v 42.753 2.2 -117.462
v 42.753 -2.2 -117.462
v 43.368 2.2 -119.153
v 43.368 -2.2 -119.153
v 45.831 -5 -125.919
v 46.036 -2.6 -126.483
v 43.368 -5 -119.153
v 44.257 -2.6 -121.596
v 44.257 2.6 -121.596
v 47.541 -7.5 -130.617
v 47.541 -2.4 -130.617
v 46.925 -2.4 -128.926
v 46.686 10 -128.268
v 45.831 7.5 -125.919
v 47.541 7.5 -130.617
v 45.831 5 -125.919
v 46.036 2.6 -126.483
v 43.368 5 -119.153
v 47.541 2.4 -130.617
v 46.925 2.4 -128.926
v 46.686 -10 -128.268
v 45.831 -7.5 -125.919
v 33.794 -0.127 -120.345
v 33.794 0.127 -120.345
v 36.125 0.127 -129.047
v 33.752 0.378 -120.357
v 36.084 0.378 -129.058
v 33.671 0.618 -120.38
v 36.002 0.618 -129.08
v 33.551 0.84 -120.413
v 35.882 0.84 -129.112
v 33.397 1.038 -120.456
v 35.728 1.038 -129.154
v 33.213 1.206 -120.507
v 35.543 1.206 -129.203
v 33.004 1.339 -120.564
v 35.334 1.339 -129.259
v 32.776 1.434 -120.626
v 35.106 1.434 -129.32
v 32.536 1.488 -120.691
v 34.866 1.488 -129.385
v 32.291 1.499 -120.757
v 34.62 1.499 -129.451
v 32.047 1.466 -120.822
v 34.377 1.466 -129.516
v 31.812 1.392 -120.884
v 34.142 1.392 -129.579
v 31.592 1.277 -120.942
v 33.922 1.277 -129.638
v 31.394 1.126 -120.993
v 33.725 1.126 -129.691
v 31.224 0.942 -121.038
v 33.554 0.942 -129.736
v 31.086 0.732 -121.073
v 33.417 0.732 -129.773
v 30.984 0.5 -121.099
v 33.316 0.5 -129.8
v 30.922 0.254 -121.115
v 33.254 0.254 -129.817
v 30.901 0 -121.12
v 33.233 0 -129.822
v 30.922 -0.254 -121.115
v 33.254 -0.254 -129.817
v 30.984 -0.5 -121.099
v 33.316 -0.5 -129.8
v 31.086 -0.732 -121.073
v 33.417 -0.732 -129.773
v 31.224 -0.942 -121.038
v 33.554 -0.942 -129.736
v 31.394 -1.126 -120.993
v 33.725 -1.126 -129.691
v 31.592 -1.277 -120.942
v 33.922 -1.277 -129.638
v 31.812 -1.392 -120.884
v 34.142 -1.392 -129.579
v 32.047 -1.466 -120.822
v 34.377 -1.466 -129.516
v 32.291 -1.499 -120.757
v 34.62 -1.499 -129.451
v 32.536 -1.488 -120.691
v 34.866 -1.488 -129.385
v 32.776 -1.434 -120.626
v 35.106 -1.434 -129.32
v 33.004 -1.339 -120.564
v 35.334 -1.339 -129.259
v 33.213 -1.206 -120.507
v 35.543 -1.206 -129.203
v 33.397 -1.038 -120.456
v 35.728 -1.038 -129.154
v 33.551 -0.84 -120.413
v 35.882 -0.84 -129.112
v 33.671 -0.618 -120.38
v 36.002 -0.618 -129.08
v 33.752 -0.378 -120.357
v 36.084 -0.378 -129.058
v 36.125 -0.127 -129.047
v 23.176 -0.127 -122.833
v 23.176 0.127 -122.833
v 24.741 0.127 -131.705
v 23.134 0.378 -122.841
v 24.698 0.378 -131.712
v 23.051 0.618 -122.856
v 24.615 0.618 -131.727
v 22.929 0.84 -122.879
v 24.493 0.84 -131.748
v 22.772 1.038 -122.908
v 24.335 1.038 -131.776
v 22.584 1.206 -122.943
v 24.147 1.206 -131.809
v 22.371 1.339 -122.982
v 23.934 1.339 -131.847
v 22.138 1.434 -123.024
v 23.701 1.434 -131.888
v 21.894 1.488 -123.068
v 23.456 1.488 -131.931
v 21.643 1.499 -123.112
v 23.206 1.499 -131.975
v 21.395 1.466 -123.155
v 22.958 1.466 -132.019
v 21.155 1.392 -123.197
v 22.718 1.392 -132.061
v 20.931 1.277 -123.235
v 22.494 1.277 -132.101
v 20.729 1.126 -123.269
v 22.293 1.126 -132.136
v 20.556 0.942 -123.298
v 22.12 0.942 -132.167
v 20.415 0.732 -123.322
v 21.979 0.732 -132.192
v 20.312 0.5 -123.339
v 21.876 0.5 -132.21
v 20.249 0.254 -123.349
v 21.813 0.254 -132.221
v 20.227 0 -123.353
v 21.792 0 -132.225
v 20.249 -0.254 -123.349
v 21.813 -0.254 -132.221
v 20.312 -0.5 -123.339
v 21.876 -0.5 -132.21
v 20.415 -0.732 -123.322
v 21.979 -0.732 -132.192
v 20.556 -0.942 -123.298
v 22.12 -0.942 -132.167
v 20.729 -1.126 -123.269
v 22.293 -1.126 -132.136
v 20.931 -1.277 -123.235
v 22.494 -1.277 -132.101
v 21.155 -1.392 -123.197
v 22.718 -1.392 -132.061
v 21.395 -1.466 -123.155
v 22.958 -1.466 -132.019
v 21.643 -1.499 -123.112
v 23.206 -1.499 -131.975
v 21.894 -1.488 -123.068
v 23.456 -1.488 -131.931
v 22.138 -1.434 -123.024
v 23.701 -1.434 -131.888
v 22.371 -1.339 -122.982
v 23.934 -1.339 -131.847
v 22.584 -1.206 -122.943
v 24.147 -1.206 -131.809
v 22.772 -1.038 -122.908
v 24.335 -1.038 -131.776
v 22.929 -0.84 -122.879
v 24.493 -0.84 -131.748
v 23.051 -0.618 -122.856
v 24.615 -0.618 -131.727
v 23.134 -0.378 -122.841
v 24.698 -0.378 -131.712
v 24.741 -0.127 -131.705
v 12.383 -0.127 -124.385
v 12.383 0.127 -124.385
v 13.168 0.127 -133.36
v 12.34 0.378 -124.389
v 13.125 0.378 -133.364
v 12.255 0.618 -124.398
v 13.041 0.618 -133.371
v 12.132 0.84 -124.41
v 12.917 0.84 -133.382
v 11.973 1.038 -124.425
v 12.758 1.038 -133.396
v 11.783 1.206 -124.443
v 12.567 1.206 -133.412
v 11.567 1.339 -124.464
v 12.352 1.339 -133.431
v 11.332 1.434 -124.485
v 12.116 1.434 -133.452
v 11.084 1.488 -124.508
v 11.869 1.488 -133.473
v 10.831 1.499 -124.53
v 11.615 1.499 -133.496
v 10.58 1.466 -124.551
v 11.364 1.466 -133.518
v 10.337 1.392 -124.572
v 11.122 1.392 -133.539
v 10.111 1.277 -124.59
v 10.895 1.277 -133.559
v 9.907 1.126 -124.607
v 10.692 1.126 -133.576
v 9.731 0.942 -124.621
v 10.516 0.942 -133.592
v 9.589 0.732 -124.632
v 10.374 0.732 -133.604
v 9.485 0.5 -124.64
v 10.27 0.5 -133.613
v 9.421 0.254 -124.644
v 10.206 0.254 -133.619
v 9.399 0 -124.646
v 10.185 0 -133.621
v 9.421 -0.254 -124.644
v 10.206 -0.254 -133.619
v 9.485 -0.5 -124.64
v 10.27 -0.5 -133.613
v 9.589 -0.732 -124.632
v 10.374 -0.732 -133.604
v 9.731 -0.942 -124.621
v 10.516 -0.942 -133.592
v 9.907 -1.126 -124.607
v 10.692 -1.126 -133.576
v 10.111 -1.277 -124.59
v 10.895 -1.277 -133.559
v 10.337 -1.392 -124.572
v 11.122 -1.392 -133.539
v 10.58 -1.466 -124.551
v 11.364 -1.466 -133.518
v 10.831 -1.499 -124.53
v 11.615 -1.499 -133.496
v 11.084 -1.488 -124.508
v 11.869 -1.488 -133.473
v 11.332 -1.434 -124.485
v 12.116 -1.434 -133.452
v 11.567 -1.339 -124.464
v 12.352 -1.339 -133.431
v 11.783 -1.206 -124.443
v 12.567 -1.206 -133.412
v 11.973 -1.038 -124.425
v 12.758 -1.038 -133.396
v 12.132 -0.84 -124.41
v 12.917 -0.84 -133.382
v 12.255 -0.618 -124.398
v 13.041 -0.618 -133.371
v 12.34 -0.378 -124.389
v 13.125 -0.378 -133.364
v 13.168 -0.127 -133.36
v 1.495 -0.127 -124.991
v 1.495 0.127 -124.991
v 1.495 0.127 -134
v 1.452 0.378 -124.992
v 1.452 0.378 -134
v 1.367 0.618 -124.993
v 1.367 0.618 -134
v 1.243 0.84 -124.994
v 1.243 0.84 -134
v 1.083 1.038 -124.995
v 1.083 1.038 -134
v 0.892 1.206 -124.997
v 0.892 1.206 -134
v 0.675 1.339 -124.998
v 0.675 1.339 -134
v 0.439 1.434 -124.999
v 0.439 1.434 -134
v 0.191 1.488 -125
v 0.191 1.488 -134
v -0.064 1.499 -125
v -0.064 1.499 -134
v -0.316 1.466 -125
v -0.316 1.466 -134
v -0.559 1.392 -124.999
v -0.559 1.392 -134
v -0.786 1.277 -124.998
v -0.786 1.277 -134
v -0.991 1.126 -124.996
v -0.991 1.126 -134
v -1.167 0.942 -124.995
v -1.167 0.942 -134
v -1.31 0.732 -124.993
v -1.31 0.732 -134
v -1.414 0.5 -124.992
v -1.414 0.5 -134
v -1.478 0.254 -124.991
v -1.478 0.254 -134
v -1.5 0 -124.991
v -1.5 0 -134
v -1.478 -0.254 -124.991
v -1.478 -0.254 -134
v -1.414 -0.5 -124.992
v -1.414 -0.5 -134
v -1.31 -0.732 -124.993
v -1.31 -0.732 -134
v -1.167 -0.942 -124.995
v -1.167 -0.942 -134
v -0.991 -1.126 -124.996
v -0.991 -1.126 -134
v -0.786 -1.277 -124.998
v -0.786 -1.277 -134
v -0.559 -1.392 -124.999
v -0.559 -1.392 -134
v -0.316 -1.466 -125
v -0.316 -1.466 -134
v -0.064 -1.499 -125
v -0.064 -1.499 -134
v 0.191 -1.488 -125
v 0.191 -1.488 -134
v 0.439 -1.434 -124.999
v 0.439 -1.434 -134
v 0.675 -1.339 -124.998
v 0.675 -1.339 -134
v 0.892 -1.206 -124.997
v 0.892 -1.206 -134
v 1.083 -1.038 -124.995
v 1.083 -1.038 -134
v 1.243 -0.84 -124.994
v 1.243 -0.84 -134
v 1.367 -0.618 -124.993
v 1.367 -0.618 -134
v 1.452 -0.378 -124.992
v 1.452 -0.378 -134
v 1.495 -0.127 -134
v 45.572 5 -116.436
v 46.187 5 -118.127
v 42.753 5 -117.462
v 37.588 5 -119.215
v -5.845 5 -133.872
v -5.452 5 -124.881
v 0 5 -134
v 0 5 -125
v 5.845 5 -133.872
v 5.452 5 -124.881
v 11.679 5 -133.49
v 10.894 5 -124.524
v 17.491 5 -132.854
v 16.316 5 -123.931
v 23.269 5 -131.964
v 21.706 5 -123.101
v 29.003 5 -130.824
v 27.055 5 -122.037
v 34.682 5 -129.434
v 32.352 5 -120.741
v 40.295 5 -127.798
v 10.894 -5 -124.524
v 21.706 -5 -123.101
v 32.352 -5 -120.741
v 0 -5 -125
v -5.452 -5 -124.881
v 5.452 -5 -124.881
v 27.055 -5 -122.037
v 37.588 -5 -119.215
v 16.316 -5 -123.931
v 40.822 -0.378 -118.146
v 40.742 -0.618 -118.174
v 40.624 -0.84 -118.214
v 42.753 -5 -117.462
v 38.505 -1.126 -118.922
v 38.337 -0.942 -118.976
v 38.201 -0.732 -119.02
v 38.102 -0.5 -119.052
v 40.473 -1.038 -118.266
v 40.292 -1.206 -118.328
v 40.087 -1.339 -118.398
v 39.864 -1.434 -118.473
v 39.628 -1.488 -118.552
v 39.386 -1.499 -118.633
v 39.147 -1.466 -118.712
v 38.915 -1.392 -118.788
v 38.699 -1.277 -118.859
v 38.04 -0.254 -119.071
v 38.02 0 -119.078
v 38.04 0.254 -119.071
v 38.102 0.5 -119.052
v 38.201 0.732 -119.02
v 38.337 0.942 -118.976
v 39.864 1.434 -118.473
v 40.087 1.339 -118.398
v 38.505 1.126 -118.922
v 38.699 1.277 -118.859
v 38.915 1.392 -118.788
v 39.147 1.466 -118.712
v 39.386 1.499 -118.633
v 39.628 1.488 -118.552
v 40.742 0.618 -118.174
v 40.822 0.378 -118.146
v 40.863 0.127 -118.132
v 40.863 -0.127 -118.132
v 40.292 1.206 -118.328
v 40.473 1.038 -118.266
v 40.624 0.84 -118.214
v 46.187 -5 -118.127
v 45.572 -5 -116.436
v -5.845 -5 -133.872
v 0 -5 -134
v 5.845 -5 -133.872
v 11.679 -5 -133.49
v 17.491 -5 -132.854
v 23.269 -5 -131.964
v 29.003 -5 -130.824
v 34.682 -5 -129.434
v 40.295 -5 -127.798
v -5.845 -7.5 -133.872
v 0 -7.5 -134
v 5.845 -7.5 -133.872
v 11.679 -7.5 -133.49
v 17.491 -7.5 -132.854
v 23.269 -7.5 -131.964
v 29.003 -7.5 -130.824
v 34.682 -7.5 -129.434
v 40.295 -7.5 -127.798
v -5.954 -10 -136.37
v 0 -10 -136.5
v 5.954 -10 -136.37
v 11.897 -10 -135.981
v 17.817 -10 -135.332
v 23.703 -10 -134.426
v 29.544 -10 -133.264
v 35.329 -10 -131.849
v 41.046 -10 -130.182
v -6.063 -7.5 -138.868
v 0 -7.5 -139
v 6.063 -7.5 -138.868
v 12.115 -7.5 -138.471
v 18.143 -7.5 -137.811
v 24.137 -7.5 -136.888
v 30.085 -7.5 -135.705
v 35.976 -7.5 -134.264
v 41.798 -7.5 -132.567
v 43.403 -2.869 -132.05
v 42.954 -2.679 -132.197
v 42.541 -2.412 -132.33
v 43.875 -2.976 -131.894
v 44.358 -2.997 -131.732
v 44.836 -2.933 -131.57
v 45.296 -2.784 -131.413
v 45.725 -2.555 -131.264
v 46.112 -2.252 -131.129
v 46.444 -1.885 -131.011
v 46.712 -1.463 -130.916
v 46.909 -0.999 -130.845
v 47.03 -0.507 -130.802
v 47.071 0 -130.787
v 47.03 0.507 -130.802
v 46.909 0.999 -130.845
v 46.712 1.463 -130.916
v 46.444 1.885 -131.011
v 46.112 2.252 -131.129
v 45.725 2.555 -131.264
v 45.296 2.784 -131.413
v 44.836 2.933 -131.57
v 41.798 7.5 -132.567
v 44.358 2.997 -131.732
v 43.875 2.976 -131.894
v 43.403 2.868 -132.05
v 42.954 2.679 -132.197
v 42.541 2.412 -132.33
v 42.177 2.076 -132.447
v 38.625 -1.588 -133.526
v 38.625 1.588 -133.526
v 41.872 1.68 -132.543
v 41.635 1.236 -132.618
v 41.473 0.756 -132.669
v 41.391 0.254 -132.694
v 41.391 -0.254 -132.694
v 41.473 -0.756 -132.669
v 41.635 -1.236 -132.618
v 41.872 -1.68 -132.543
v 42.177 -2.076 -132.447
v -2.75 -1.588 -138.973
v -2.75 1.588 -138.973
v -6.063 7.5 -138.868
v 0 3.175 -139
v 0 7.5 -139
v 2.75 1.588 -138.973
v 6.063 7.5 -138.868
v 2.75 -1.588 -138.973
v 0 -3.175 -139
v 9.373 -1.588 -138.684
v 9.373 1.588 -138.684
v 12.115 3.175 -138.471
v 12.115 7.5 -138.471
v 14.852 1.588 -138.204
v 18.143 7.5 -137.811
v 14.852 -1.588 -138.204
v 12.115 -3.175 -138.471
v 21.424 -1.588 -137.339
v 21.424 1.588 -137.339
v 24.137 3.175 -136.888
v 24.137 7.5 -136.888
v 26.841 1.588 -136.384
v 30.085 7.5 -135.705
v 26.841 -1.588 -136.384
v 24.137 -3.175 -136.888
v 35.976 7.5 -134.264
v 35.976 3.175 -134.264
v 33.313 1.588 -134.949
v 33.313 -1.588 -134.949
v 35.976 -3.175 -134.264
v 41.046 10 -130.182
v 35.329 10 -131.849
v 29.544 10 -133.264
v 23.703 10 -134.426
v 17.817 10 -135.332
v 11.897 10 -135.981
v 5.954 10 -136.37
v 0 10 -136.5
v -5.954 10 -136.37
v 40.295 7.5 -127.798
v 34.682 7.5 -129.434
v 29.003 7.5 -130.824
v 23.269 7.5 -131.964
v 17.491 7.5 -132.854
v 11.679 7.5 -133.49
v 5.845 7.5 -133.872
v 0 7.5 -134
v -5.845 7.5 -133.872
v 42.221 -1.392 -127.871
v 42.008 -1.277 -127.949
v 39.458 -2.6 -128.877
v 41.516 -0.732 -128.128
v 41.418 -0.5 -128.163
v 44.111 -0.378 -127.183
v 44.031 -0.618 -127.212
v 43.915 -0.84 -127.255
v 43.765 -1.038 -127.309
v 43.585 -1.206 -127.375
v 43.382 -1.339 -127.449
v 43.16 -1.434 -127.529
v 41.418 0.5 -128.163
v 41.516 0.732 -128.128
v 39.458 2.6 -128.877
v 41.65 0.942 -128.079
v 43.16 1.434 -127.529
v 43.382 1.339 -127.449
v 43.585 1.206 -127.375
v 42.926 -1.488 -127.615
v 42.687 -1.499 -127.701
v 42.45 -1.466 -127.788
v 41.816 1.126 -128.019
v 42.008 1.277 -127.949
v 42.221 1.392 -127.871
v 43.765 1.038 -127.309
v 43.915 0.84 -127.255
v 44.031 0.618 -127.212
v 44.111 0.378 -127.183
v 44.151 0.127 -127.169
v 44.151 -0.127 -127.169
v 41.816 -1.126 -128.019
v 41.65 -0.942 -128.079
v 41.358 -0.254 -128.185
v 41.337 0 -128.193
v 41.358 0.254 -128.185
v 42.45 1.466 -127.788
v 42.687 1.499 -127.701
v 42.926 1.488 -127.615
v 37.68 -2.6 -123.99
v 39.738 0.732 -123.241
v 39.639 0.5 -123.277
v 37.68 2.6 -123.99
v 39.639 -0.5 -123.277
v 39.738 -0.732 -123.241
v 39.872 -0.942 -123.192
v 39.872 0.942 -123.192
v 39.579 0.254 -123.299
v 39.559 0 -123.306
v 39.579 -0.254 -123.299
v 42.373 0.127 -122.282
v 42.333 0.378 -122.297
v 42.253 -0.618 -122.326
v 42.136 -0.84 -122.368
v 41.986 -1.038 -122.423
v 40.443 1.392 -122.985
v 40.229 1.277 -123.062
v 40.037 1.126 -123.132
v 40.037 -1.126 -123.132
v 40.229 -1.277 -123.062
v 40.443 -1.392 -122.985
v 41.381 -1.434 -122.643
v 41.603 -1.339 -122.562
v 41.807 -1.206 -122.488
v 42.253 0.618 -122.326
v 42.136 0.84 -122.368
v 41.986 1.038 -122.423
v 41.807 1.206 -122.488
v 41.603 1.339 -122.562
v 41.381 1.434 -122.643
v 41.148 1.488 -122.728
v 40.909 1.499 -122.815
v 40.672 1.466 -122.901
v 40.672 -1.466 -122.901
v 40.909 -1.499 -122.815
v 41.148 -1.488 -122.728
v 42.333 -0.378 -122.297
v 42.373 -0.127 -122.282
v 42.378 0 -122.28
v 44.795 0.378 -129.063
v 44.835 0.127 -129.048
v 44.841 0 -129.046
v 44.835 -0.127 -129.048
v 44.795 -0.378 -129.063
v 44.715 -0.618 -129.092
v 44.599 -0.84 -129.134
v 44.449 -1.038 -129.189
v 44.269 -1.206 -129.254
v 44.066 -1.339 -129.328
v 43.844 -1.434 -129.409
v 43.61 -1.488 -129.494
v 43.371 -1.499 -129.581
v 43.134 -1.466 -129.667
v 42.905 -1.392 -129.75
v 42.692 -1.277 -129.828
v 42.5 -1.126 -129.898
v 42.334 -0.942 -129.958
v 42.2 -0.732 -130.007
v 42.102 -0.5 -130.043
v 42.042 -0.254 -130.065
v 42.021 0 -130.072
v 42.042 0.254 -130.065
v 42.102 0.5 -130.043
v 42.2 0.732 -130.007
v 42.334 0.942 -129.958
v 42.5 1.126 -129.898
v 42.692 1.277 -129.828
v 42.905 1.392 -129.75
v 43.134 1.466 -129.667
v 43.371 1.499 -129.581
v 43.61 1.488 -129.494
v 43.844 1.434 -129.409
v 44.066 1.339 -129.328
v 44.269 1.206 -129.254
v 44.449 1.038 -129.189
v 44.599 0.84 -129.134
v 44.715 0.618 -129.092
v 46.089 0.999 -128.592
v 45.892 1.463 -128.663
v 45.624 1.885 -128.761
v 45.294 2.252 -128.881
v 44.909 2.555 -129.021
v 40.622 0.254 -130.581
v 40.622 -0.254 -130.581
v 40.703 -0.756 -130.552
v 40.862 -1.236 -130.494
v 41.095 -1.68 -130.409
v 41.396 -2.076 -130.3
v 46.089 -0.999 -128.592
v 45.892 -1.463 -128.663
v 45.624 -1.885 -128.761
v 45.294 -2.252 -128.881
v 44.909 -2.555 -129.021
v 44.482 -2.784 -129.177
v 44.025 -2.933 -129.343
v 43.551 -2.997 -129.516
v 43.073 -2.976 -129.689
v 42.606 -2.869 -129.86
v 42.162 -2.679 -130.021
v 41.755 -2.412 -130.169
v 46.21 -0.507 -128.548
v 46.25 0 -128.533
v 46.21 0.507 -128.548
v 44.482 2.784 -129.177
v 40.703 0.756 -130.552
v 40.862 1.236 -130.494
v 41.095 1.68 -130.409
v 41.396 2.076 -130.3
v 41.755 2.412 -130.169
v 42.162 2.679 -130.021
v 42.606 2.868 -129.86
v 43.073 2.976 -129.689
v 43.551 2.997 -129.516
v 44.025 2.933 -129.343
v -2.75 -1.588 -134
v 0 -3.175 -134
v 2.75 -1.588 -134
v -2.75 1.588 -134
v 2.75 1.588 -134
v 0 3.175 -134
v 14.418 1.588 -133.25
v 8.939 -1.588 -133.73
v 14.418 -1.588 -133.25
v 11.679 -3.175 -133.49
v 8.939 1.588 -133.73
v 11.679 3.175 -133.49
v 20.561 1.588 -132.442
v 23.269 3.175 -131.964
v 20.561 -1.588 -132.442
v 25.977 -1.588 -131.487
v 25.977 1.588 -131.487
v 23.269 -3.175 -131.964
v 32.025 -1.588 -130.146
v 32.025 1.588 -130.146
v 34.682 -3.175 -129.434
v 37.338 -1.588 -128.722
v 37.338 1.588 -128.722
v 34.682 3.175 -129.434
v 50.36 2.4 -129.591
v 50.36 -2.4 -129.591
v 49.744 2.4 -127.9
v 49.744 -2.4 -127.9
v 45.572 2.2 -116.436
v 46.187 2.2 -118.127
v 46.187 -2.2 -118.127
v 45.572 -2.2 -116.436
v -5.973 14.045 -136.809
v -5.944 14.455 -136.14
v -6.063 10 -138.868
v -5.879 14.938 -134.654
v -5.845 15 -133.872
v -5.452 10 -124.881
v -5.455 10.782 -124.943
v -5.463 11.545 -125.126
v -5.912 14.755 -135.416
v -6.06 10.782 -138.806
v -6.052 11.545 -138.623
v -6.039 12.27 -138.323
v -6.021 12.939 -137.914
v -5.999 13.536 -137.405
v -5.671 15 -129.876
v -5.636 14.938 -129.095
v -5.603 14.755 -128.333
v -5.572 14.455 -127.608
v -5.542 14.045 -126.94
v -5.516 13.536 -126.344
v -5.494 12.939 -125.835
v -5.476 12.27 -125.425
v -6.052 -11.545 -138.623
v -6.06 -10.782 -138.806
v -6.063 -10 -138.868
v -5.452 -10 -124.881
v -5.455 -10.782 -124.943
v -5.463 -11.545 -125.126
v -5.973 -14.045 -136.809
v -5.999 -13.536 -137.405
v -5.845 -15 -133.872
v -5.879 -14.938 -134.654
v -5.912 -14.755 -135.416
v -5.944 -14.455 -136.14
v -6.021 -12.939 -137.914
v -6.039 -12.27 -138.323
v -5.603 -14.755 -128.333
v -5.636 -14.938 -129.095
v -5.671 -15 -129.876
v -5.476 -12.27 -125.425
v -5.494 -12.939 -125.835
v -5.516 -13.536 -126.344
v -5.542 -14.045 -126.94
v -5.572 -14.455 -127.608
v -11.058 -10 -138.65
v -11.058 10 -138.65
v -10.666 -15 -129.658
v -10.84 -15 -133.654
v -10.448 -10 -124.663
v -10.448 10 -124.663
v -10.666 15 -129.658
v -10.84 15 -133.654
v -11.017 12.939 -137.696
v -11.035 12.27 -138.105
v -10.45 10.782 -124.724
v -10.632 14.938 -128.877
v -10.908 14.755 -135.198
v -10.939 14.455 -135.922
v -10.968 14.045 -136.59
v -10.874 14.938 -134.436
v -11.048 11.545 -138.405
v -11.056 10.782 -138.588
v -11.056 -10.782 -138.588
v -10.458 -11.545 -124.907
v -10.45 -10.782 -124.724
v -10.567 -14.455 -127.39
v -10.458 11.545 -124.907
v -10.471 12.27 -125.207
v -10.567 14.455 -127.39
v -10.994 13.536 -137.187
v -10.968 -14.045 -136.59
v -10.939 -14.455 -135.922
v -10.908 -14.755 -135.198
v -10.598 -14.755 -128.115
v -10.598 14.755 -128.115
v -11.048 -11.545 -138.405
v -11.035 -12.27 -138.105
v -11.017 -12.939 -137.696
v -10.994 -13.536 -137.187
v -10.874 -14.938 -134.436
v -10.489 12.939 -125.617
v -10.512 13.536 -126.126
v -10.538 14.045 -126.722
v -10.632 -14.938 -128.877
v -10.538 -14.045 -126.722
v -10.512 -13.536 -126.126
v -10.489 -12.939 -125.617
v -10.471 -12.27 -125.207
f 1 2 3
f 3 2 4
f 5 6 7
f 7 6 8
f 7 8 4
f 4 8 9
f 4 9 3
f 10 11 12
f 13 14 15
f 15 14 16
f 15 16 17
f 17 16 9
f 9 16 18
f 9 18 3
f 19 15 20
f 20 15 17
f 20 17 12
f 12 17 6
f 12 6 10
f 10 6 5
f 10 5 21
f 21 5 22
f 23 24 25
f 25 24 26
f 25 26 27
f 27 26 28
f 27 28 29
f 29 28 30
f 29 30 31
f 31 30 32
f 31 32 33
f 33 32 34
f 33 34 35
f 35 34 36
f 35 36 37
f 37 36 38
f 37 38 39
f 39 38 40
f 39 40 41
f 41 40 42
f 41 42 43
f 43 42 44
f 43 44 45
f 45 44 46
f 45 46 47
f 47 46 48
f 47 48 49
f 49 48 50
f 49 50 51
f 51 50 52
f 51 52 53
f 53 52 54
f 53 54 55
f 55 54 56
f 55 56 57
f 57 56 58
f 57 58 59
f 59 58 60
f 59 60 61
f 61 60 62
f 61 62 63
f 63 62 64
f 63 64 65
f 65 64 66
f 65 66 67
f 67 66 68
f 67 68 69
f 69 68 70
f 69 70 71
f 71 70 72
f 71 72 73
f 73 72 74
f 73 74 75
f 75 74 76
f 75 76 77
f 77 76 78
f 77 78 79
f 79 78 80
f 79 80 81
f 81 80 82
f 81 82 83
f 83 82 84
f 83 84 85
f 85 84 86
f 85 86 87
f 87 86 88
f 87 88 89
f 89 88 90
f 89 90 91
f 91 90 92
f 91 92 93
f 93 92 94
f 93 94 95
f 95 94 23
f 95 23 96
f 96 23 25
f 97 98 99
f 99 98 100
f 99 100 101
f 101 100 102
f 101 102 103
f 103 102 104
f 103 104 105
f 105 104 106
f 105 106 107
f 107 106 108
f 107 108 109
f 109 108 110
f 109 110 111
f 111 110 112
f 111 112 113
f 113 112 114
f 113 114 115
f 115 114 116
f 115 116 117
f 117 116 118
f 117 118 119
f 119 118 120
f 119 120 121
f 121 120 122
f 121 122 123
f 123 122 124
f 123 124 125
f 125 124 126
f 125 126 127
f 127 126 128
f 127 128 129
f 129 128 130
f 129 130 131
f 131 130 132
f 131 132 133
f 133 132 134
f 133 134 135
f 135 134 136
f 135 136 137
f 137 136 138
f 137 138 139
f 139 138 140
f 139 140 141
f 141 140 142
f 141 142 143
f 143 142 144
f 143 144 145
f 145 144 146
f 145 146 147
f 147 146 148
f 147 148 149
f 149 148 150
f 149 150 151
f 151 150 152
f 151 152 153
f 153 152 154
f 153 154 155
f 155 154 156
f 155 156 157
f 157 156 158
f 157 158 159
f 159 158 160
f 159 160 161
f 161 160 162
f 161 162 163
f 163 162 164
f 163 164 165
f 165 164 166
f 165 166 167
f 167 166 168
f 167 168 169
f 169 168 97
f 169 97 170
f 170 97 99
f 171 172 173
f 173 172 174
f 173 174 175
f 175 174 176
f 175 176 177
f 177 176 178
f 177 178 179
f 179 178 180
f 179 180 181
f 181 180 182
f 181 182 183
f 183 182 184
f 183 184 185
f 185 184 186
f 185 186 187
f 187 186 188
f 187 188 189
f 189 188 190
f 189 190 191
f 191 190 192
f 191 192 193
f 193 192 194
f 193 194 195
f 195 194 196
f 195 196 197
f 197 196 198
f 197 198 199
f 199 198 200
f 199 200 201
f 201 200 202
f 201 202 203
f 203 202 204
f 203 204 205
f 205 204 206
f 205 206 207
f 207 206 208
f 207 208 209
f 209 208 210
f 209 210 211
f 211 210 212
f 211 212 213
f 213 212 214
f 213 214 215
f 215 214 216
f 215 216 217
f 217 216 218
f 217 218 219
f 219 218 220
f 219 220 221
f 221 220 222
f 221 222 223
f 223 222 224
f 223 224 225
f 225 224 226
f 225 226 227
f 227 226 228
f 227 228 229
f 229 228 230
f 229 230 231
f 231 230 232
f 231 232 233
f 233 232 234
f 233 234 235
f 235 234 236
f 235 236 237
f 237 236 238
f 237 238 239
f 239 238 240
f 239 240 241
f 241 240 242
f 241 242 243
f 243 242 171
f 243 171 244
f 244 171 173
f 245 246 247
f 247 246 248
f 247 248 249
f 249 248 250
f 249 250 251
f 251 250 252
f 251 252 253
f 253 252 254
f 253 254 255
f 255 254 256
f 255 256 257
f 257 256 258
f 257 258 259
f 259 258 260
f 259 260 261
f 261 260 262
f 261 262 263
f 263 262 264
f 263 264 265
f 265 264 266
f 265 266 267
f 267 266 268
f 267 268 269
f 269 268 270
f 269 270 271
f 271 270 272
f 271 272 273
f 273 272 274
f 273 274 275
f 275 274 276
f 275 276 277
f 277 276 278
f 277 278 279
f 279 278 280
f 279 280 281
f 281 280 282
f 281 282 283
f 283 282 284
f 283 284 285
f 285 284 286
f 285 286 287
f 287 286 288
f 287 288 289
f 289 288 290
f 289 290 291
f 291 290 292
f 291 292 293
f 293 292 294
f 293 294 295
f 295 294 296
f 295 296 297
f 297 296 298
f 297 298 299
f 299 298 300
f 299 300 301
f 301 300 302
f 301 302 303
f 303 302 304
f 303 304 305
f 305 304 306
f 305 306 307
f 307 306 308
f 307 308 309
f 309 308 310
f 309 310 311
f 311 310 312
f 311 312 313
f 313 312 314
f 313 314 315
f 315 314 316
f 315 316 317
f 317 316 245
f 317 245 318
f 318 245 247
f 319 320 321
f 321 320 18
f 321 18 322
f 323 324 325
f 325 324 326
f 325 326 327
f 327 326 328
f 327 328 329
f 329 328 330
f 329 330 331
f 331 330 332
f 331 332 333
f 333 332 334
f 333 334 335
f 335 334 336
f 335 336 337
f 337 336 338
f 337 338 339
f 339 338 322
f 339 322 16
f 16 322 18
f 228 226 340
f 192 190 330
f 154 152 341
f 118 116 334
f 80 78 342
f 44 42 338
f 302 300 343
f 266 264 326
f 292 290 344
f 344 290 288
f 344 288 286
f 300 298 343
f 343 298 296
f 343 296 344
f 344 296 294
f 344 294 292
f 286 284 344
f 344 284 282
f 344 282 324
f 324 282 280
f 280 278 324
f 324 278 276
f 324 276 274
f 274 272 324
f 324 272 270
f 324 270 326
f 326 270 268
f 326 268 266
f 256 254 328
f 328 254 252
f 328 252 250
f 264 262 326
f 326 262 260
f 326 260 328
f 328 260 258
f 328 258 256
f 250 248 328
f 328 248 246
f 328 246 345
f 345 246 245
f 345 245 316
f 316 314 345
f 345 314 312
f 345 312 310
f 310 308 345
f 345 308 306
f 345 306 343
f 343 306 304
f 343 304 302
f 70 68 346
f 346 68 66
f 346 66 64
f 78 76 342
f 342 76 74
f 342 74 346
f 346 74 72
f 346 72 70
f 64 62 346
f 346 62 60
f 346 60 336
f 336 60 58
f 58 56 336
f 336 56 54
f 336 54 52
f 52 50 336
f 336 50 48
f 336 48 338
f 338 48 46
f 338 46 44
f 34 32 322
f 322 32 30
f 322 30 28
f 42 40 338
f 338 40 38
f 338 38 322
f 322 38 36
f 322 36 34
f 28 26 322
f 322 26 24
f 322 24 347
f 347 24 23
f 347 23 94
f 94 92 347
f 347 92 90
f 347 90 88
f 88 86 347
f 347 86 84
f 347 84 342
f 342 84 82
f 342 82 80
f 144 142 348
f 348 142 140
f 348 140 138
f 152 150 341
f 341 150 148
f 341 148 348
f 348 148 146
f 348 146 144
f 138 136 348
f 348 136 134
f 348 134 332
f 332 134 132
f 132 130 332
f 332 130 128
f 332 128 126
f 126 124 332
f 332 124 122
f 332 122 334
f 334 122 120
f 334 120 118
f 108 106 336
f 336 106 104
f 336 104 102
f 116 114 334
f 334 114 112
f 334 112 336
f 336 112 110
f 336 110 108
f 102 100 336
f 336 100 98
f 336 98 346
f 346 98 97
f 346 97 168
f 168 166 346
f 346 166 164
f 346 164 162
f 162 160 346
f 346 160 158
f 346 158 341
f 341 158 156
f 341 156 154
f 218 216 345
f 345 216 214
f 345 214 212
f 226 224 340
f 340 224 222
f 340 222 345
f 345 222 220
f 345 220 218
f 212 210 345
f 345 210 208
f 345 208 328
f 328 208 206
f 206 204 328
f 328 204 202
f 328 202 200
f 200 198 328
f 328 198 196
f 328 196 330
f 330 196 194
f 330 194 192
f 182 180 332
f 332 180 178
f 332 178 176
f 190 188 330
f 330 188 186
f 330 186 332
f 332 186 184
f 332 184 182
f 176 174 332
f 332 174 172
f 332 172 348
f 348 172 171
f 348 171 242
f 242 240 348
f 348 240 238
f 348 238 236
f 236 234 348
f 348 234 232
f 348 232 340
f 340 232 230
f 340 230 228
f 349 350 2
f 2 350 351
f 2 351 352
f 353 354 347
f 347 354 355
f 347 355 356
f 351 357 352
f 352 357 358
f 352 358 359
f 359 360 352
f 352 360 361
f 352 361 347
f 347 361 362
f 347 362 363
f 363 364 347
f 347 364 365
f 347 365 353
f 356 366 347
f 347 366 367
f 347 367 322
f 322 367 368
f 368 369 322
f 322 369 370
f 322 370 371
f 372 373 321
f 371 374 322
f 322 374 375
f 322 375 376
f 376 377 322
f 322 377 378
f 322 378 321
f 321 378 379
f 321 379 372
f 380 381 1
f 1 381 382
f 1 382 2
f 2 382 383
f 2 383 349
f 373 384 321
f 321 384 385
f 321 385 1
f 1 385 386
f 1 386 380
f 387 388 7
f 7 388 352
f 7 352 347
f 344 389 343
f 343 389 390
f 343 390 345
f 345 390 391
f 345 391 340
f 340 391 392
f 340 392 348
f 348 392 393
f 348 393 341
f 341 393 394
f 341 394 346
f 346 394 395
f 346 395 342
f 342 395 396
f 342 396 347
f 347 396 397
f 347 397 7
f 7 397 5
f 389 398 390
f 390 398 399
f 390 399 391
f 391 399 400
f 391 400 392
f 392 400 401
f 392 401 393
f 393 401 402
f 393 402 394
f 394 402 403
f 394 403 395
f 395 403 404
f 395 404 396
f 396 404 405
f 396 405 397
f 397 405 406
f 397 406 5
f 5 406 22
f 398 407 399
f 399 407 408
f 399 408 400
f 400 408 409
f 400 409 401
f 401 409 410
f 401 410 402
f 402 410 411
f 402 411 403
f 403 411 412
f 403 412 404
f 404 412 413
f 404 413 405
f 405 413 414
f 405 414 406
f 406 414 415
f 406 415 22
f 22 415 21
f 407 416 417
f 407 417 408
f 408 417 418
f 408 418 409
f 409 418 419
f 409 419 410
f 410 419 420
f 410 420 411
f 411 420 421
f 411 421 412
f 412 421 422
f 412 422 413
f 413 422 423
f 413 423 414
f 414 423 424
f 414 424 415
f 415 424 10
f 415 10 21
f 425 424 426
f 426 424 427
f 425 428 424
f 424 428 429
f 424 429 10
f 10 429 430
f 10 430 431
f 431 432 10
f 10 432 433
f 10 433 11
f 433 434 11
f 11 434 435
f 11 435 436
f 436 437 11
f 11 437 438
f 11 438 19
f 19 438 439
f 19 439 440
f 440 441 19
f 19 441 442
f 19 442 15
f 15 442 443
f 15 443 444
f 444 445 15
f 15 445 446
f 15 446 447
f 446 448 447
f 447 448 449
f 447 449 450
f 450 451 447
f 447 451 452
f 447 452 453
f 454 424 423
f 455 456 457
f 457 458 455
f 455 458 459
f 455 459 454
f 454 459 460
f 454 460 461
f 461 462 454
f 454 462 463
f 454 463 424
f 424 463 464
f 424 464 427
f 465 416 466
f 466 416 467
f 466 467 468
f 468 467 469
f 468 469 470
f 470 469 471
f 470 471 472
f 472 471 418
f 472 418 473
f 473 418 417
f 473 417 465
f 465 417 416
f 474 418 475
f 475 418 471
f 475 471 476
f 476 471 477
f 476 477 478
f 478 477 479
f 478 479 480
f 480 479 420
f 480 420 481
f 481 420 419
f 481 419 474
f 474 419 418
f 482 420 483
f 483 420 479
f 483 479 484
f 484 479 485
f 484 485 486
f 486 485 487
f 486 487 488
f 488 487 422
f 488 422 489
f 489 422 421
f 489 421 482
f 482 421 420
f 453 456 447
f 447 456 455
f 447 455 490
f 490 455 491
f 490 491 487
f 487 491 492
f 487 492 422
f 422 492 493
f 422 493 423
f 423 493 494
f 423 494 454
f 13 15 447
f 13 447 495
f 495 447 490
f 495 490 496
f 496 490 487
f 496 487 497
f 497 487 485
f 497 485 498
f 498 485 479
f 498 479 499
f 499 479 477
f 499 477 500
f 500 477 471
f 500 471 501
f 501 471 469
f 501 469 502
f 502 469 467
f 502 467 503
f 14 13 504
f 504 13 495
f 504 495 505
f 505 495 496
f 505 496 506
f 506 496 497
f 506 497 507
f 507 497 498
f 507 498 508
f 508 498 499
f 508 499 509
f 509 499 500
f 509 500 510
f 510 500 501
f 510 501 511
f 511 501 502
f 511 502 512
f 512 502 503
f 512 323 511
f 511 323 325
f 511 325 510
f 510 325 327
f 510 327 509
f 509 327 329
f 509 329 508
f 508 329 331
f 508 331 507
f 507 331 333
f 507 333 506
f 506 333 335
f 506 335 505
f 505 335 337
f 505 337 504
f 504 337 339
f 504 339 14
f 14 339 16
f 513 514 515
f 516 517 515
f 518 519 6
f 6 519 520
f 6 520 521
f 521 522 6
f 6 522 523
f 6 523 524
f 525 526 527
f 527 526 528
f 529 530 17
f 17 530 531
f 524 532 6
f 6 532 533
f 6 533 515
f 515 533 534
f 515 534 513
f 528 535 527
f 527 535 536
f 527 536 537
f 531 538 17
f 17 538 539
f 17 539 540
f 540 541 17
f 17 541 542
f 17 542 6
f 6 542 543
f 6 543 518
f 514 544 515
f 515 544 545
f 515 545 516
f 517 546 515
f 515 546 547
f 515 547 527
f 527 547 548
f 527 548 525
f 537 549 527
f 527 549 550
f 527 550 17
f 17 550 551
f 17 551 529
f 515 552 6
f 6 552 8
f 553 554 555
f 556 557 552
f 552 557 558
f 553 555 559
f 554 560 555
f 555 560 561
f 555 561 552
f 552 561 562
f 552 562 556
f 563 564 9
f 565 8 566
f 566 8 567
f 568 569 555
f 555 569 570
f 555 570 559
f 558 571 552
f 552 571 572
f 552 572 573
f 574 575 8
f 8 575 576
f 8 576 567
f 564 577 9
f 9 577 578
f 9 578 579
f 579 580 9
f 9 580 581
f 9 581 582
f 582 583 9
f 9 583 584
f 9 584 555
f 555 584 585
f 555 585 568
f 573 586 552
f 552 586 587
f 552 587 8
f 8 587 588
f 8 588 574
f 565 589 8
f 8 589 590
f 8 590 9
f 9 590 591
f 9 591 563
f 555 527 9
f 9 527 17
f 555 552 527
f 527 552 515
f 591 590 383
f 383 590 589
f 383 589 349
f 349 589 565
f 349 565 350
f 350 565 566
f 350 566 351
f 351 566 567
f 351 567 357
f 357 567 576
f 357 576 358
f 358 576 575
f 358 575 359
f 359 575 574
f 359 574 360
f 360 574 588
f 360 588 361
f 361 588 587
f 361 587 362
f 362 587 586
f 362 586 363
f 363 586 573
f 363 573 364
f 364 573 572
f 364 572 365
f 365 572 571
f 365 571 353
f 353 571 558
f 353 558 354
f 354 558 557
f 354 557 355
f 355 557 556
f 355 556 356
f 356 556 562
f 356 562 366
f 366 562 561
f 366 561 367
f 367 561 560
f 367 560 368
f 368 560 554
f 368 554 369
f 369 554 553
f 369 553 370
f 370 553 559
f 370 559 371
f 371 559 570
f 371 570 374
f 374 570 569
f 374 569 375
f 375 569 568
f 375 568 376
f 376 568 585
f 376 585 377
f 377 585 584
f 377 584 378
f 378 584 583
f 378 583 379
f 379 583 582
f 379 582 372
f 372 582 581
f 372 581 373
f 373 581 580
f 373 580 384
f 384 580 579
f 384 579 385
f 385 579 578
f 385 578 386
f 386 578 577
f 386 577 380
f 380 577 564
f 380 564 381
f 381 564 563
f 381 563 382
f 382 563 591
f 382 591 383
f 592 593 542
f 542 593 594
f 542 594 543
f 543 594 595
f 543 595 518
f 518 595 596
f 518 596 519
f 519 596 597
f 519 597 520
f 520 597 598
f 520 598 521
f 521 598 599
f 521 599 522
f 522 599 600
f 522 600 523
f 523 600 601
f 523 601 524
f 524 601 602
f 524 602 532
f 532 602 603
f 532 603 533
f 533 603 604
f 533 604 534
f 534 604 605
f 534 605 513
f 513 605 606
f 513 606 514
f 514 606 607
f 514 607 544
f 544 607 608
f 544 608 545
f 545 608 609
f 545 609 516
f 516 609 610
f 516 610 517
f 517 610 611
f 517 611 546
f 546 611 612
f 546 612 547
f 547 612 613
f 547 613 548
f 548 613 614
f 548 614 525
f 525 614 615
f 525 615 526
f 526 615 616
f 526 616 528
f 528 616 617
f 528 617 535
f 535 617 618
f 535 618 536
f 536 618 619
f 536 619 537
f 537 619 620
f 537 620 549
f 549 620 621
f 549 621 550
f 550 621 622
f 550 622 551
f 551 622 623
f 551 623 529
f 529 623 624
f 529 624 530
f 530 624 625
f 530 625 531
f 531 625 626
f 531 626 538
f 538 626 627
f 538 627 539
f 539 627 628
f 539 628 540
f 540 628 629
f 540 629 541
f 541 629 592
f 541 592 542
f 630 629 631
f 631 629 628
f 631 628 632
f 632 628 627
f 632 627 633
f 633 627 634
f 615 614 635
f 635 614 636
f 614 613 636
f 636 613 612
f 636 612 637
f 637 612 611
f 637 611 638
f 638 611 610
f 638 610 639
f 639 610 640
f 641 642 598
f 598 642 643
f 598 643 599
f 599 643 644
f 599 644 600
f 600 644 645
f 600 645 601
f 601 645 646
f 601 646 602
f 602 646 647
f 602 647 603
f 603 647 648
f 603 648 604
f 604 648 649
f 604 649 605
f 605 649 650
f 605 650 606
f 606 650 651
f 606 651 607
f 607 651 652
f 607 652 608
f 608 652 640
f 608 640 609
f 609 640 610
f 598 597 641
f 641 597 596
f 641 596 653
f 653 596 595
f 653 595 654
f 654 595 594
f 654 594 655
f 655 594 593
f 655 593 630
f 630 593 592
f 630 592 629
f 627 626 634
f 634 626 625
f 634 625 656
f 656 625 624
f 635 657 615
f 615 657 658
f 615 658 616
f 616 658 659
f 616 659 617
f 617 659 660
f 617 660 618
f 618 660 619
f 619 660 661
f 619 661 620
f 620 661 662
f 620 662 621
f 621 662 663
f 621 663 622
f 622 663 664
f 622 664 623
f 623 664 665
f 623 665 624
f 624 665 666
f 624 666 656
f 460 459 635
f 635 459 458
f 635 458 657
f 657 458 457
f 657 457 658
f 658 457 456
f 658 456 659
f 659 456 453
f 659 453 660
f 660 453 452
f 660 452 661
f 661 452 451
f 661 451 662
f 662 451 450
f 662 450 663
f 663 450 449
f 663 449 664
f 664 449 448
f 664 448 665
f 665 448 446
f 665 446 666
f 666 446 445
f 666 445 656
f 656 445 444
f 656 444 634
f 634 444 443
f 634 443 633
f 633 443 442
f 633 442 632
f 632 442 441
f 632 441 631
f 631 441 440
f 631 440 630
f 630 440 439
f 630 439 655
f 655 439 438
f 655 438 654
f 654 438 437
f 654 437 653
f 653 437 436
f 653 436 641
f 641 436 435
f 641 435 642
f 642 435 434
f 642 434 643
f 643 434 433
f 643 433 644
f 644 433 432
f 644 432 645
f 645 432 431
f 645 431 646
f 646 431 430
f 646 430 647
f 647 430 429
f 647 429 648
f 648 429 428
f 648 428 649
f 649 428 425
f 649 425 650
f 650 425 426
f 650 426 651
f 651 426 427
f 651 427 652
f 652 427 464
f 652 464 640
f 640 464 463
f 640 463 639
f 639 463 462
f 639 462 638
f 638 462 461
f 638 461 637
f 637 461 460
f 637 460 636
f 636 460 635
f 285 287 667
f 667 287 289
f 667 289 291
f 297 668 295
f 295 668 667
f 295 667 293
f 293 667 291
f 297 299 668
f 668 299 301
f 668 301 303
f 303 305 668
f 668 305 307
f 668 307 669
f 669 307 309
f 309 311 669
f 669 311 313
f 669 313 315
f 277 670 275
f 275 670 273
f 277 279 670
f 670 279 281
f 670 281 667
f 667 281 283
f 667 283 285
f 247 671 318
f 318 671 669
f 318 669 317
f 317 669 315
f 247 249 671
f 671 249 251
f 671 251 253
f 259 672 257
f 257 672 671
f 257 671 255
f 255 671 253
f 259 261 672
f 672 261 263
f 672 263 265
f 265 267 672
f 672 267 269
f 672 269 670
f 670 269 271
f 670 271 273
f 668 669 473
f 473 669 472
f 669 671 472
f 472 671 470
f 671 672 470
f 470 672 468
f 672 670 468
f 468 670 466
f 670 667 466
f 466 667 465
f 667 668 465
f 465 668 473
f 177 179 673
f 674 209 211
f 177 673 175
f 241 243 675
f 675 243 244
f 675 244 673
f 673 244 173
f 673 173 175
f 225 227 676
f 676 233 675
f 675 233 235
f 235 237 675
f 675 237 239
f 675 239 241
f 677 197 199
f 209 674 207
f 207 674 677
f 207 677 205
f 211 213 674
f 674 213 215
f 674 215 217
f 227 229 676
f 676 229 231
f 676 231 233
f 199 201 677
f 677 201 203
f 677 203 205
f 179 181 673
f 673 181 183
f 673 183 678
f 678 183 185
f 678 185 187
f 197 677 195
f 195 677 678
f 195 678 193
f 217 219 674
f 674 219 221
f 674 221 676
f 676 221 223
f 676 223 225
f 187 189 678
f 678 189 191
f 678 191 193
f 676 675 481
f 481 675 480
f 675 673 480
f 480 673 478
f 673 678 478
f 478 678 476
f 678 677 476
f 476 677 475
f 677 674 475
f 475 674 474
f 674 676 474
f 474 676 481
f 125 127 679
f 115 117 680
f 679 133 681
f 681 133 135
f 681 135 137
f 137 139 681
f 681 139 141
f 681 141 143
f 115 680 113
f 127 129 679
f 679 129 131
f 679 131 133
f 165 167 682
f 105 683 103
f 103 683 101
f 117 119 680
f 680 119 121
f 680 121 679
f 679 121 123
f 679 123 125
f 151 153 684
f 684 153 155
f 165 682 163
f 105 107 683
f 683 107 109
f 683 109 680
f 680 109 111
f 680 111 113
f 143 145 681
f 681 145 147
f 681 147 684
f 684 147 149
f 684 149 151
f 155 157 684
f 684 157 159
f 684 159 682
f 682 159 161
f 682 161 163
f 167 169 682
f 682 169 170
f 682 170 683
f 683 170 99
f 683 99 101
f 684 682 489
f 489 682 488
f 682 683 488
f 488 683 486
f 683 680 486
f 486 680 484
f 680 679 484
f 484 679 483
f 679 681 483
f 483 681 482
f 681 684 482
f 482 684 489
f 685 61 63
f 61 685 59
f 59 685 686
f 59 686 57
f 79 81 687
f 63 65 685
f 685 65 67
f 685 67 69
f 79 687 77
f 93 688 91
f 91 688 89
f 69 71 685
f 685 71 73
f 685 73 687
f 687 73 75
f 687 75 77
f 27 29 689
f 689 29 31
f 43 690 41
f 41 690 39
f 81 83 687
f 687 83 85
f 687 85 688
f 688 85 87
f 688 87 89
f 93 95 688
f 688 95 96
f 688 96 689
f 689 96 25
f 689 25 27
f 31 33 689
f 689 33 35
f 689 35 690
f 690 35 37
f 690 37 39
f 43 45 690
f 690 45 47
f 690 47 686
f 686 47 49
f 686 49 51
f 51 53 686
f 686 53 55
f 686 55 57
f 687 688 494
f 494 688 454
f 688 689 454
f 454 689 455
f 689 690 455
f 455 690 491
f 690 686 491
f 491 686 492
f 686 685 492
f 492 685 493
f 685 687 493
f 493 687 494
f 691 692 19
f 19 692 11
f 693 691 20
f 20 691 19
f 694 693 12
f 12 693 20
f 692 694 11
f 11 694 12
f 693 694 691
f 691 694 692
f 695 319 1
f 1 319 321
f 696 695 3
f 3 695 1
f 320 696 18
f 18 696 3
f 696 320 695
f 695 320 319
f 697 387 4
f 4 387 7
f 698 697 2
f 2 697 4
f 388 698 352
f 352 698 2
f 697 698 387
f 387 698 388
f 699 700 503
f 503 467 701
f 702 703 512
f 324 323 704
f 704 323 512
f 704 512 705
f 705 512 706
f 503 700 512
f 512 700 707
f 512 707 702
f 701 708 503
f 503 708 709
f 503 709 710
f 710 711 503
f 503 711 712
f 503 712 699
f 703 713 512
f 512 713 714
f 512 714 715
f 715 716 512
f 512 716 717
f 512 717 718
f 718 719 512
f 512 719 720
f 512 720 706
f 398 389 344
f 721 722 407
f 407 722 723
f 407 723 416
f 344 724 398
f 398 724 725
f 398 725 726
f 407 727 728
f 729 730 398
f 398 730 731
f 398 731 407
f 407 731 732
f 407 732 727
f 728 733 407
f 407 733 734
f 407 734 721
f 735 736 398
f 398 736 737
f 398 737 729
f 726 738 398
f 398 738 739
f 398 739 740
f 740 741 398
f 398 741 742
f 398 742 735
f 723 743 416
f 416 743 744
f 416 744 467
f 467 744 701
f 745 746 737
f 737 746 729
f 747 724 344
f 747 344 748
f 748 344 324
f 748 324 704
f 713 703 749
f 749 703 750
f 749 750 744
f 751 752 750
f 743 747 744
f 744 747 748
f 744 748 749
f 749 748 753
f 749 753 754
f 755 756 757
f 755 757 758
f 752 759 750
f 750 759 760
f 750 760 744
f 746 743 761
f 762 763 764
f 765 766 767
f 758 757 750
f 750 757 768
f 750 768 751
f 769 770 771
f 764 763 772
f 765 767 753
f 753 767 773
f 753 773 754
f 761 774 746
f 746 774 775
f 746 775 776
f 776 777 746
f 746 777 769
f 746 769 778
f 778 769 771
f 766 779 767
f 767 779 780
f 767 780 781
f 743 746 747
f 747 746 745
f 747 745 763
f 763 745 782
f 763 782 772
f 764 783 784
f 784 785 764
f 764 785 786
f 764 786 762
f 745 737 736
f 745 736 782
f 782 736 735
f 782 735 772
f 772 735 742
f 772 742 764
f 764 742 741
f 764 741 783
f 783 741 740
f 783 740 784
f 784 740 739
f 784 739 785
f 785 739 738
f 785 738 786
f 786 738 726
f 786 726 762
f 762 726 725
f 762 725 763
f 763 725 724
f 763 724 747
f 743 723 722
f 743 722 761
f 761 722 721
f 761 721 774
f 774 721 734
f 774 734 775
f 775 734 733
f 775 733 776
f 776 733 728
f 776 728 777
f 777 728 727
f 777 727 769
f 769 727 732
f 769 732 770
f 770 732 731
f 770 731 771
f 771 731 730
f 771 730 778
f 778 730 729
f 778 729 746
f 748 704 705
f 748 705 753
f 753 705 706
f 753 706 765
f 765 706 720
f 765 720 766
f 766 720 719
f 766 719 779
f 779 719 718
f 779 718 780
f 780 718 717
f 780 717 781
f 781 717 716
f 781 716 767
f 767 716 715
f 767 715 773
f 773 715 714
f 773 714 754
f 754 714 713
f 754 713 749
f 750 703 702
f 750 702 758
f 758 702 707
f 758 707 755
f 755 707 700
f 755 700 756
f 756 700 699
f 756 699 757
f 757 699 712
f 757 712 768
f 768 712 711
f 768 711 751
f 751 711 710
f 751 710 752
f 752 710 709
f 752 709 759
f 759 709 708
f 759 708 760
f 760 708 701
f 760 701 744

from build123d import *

# Parameters (mm, degrees)
REVOLVE_1_ANGLE          = 40
SKETCH_3_W               = 5.2
SKETCH_3_H               = 5.2
CUT_EXTRUDE_1_DEPTH      = 7
CUT_EXTRUDE_2_DEPTH      = 94.967026614
CUT_EXTRUDE_2_DEPTH_BACK = 94.967026614
SKETCH_5_R               = 1.5
CUT_EXTRUDE_START        = -2
SKETCH_6_R               = 3
CUT_EXTRUDE_3_DEPTH      = 93.938324905
SKETCH_12_R              = 1.5
CUT_EXTRUDE_5_DEPTH      = 54.141615619
CUT_EXTRUDE_6_DEPTH      = 5
PATTERN_CIRCULAR_1_COUNT = 4
PATTERN_CIRCULAR_1_ANGLE = 15
F_1_THE_OTHER_WAY_COUNT  = 4
F_1_THE_OTHER_WAY_ANGLE  = 15
SKETCH_9_W               = 1.8
SKETCH_9_H               = 4.8
SKETCH_9_H_2             = 2.8
EXTRUDE_2_DEPTH          = 3
SKETCH_10_W              = 52.448370613
SKETCH_10_H              = 39.953744926
CUT_EXTRUDE_4_DEPTH      = 149.179341739
SKETCH_11_W              = 14
SKETCH_11_H              = 30
EXTRUDE_3_DEPTH          = 5
FILLET_1_R               = 5


# Read off the part's stored shape, not the designer's step: 旋转1
with BuildPart() as part:
    # 旋转1 outline → 旋转1 (revolve)
    with BuildSketch(Plane(origin=(0, 0, 0), x_dir=(0.3420201433256701, 0, -0.9396926207859079), z_dir=(0.9396926207859079, 0, 0.3420201433256701))):
        Polygon((134, 5), (125, 5), (125, -5), (134, -5), (134, -7.5), (136.5, -10), (139, -7.5), (139, 7.5), (136.5, 10), (134, 7.5), align=None)
    revolve(axis=Axis((0, 0, 0), (0, 1, 0)), revolution_arc=REVOLVE_1_ANGLE)

    # 草图3 → 切除-拉伸1 (cut)
    with BuildSketch(Plane(origin=(0, 0, 0), x_dir=(0.34202014332566943, 0, -0.9396926207859081), z_dir=(0.9396926207859081, 0, 0.34202014332566943))):
        with Locations((132, 0)):
            Rectangle(SKETCH_3_W, SKETCH_3_H)
    extrude(amount=-CUT_EXTRUDE_1_DEPTH, mode=Mode.SUBTRACT)

    # 草图5 → 切除-拉伸2 (cut, two sides: drawn at the far end of the back side and taken through both)
    with BuildSketch(Plane(origin=(44.257406546, 0, -121.59622513), x_dir=(-0.9396926207859081, 0, -0.3420201433256695), z_dir=(0.3420201433256695, 0, -0.9396926207859081)).offset(-CUT_EXTRUDE_2_DEPTH_BACK)):
        with Locations((3.5, 0)):
            Circle(SKETCH_5_R)
    extrude(amount=CUT_EXTRUDE_2_DEPTH + CUT_EXTRUDE_2_DEPTH_BACK, mode=Mode.SUBTRACT)

    # 草图6 → 切除-拉伸3 (cut, through all)
    with BuildSketch(Plane(origin=(46.035911292, 0, -126.482626758), x_dir=(0.9396926207859081, 0, 0.3420201433256695), z_dir=(-0.3420201433256695, 0, 0.9396926207859081)).offset(CUT_EXTRUDE_START)):
        with Locations((-3.5, 0)):
            Circle(SKETCH_6_R)
    extrude(amount=-CUT_EXTRUDE_3_DEPTH, mode=Mode.SUBTRACT)

    # 草图12 → 切除-拉伸5 (cut, through all)
    with BuildSketch(Plane(origin=(0, 0, -139), x_dir=(-1, 0, 0), z_dir=(0, 0, -1))):
        Circle(SKETCH_12_R)
    cut_extrude_5 = extrude(amount=-CUT_EXTRUDE_5_DEPTH, mode=Mode.SUBTRACT)

    # 草图13 → 切除-拉伸6 (cut)
    with BuildSketch(Plane(origin=(0, 0, -139), x_dir=(-1, 0, 0), z_dir=(0, 0, -1))):
        Polygon((0, -3.175426481), (2.75, -1.58771324), (2.75, 1.58771324), (0, 3.175426481), (-2.75, 1.58771324), (-2.75, -1.58771324), align=None)
    cut_extrude_6 = extrude(amount=-CUT_EXTRUDE_6_DEPTH, mode=Mode.SUBTRACT)

    # 阵列(圆周)1: 切除-拉伸5, 切除-拉伸6 ×4 about axis
    pattern_circular_1_axis = Axis((0, 0, 0), (0, 1, 0))
    add([cut_extrude_5.rotate(pattern_circular_1_axis, i * PATTERN_CIRCULAR_1_ANGLE / (PATTERN_CIRCULAR_1_COUNT - 1)) for i in range(1, PATTERN_CIRCULAR_1_COUNT)], mode=Mode.SUBTRACT)
    add([cut_extrude_6.rotate(pattern_circular_1_axis, i * PATTERN_CIRCULAR_1_ANGLE / (PATTERN_CIRCULAR_1_COUNT - 1)) for i in range(1, PATTERN_CIRCULAR_1_COUNT)], mode=Mode.SUBTRACT)

    # 1 the other way: 切除-拉伸5, 切除-拉伸6 ×4 about axis
    f_1_the_other_way_axis = Axis((0, 0, 0), (0, -1, 0))
    add([cut_extrude_5.rotate(f_1_the_other_way_axis, i * F_1_THE_OTHER_WAY_ANGLE / (F_1_THE_OTHER_WAY_COUNT - 1)) for i in range(1, F_1_THE_OTHER_WAY_COUNT)], mode=Mode.SUBTRACT)
    add([cut_extrude_6.rotate(f_1_the_other_way_axis, i * F_1_THE_OTHER_WAY_ANGLE / (F_1_THE_OTHER_WAY_COUNT - 1)) for i in range(1, F_1_THE_OTHER_WAY_COUNT)], mode=Mode.SUBTRACT)

    # 草图9 → 凸台-拉伸2 (add)
    with BuildSketch(Plane(origin=(0, 0, 0), x_dir=(0.34202014332566943, 0, -0.9396926207859082), z_dir=(0.9396926207859082, 0, 0.34202014332566943))):
        with Locations((138.1, 0)):
            Rectangle(SKETCH_9_W, SKETCH_9_H)
        with Locations((125.9, 3.6)):
            Rectangle(SKETCH_9_W, SKETCH_9_H_2)
        with Locations((125.9, -3.6)):
            Rectangle(SKETCH_9_W, SKETCH_9_H_2)
    extrude(amount=EXTRUDE_2_DEPTH)

    # 草图10 → 切除-拉伸4 (cut, through all)
    with BuildSketch(Plane(origin=(0, 0, 0), x_dir=(0, -1, 0), z_dir=(0.9990482215818578, 0, -0.04361938736533606))):
        with Locations((1.816079314, 125.001454628)):
            Rectangle(SKETCH_10_W, SKETCH_10_H)
    extrude(amount=-CUT_EXTRUDE_4_DEPTH, mode=Mode.SUBTRACT)

    # 草图11 → 凸台-拉伸3 (add)
    with BuildSketch(Plane(origin=(0, 0, 0), x_dir=(0.043619387365336076, 0, 0.9990482215818578), z_dir=(-0.9990482215818577, 0, 0.04361938736533607))):
        with Locations((-132, 0)):
            Rectangle(SKETCH_11_W, SKETCH_11_H)
    extrude(amount=EXTRUDE_3_DEPTH)

    # 圆角1
    fillet_1_edges = [part.edges().sort_by_distance(p)[0] for p in [
        (-8.560715398, 15, -138.758654331),
        (-8.560715398, -15, -138.758654331),
        (-7.950043975, -15, -124.771979229),
        (-7.950043975, 15, -124.771979229),
    ]]
    fillet(fillet_1_edges, radius=FILLET_1_R)


solid = part.part
